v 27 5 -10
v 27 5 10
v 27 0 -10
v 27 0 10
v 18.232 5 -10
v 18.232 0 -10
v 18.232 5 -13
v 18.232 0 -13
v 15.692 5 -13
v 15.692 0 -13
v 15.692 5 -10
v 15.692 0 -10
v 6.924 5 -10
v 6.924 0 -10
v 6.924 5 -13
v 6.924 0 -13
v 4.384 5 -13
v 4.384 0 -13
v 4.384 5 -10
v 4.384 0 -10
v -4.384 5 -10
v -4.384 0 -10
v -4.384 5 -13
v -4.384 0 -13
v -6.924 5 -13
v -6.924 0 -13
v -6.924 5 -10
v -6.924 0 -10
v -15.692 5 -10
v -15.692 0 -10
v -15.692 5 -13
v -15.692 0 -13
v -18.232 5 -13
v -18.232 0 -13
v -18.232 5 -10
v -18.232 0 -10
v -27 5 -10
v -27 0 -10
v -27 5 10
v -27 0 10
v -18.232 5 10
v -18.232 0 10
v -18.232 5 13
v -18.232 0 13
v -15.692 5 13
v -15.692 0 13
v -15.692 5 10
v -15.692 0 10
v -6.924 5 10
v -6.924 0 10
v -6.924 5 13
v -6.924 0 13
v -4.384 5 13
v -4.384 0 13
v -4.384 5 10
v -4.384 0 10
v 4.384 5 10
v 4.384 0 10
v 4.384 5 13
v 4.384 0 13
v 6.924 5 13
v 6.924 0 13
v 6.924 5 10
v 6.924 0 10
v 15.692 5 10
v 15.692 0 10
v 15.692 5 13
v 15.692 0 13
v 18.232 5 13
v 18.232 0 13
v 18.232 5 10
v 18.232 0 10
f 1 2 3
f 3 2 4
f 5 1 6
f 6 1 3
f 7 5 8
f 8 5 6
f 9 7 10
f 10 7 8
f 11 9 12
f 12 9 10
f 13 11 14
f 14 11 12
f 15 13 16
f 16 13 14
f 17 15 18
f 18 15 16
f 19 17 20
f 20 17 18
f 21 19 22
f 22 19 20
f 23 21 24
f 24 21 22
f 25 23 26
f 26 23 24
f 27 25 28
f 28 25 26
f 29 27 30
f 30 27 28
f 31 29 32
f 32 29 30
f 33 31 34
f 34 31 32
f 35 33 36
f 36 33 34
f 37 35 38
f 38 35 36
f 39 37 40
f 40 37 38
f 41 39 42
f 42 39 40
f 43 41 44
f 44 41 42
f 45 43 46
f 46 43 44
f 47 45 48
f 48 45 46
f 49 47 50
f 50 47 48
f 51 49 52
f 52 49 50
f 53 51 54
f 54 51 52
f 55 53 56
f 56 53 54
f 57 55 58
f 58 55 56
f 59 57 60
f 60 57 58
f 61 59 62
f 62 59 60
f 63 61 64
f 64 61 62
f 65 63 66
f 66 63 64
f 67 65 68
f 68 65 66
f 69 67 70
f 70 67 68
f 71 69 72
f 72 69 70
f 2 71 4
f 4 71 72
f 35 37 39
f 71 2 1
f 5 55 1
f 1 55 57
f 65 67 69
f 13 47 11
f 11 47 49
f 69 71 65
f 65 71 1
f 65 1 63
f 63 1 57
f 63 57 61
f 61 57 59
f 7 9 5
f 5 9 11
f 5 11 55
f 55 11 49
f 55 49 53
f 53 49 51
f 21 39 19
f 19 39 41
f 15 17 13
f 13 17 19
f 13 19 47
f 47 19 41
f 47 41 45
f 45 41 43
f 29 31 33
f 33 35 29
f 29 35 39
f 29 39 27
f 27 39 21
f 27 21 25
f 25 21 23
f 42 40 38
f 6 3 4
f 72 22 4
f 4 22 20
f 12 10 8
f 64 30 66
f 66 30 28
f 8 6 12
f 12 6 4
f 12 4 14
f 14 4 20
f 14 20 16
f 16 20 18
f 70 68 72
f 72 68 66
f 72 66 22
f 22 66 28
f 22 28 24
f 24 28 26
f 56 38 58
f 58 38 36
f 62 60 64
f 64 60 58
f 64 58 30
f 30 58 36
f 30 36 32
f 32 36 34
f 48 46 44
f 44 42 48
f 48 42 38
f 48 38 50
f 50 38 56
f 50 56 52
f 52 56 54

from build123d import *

# Parameters (mm, degrees)
SKETCH1_W           = 54
SKETCH1_H           = 20
SKETCH1_W_2         = 2.54
SKETCH1_H_2         = 3
BOSS_EXTRUDE1_DEPTH = 5


with BuildPart() as part:
    # Sketch1 → Boss-Extrude1 (new body)
    with BuildSketch(Plane(origin=(0, 0, 0), x_dir=(1, 0, 0), z_dir=(0, 1, 0))):
        Rectangle(SKETCH1_W, SKETCH1_H)
        with Locations((-16.962, -11.5)):
            Rectangle(SKETCH1_W_2, SKETCH1_H_2)
        with Locations((-5.654, -11.5)):
            Rectangle(SKETCH1_W_2, SKETCH1_H_2)
        with Locations((5.654, -11.5)):
            Rectangle(SKETCH1_W_2, SKETCH1_H_2)
        with Locations((16.962, -11.5)):
            Rectangle(SKETCH1_W_2, SKETCH1_H_2)
        with Locations((16.962, 11.5)):
            Rectangle(SKETCH1_W_2, SKETCH1_H_2)
        with Locations((5.654, 11.5)):
            Rectangle(SKETCH1_W_2, SKETCH1_H_2)
        with Locations((-5.654, 11.5)):
            Rectangle(SKETCH1_W_2, SKETCH1_H_2)
        with Locations((-16.962, 11.5)):
            Rectangle(SKETCH1_W_2, SKETCH1_H_2)
    extrude(amount=BOSS_EXTRUDE1_DEPTH)


solid = part.part
